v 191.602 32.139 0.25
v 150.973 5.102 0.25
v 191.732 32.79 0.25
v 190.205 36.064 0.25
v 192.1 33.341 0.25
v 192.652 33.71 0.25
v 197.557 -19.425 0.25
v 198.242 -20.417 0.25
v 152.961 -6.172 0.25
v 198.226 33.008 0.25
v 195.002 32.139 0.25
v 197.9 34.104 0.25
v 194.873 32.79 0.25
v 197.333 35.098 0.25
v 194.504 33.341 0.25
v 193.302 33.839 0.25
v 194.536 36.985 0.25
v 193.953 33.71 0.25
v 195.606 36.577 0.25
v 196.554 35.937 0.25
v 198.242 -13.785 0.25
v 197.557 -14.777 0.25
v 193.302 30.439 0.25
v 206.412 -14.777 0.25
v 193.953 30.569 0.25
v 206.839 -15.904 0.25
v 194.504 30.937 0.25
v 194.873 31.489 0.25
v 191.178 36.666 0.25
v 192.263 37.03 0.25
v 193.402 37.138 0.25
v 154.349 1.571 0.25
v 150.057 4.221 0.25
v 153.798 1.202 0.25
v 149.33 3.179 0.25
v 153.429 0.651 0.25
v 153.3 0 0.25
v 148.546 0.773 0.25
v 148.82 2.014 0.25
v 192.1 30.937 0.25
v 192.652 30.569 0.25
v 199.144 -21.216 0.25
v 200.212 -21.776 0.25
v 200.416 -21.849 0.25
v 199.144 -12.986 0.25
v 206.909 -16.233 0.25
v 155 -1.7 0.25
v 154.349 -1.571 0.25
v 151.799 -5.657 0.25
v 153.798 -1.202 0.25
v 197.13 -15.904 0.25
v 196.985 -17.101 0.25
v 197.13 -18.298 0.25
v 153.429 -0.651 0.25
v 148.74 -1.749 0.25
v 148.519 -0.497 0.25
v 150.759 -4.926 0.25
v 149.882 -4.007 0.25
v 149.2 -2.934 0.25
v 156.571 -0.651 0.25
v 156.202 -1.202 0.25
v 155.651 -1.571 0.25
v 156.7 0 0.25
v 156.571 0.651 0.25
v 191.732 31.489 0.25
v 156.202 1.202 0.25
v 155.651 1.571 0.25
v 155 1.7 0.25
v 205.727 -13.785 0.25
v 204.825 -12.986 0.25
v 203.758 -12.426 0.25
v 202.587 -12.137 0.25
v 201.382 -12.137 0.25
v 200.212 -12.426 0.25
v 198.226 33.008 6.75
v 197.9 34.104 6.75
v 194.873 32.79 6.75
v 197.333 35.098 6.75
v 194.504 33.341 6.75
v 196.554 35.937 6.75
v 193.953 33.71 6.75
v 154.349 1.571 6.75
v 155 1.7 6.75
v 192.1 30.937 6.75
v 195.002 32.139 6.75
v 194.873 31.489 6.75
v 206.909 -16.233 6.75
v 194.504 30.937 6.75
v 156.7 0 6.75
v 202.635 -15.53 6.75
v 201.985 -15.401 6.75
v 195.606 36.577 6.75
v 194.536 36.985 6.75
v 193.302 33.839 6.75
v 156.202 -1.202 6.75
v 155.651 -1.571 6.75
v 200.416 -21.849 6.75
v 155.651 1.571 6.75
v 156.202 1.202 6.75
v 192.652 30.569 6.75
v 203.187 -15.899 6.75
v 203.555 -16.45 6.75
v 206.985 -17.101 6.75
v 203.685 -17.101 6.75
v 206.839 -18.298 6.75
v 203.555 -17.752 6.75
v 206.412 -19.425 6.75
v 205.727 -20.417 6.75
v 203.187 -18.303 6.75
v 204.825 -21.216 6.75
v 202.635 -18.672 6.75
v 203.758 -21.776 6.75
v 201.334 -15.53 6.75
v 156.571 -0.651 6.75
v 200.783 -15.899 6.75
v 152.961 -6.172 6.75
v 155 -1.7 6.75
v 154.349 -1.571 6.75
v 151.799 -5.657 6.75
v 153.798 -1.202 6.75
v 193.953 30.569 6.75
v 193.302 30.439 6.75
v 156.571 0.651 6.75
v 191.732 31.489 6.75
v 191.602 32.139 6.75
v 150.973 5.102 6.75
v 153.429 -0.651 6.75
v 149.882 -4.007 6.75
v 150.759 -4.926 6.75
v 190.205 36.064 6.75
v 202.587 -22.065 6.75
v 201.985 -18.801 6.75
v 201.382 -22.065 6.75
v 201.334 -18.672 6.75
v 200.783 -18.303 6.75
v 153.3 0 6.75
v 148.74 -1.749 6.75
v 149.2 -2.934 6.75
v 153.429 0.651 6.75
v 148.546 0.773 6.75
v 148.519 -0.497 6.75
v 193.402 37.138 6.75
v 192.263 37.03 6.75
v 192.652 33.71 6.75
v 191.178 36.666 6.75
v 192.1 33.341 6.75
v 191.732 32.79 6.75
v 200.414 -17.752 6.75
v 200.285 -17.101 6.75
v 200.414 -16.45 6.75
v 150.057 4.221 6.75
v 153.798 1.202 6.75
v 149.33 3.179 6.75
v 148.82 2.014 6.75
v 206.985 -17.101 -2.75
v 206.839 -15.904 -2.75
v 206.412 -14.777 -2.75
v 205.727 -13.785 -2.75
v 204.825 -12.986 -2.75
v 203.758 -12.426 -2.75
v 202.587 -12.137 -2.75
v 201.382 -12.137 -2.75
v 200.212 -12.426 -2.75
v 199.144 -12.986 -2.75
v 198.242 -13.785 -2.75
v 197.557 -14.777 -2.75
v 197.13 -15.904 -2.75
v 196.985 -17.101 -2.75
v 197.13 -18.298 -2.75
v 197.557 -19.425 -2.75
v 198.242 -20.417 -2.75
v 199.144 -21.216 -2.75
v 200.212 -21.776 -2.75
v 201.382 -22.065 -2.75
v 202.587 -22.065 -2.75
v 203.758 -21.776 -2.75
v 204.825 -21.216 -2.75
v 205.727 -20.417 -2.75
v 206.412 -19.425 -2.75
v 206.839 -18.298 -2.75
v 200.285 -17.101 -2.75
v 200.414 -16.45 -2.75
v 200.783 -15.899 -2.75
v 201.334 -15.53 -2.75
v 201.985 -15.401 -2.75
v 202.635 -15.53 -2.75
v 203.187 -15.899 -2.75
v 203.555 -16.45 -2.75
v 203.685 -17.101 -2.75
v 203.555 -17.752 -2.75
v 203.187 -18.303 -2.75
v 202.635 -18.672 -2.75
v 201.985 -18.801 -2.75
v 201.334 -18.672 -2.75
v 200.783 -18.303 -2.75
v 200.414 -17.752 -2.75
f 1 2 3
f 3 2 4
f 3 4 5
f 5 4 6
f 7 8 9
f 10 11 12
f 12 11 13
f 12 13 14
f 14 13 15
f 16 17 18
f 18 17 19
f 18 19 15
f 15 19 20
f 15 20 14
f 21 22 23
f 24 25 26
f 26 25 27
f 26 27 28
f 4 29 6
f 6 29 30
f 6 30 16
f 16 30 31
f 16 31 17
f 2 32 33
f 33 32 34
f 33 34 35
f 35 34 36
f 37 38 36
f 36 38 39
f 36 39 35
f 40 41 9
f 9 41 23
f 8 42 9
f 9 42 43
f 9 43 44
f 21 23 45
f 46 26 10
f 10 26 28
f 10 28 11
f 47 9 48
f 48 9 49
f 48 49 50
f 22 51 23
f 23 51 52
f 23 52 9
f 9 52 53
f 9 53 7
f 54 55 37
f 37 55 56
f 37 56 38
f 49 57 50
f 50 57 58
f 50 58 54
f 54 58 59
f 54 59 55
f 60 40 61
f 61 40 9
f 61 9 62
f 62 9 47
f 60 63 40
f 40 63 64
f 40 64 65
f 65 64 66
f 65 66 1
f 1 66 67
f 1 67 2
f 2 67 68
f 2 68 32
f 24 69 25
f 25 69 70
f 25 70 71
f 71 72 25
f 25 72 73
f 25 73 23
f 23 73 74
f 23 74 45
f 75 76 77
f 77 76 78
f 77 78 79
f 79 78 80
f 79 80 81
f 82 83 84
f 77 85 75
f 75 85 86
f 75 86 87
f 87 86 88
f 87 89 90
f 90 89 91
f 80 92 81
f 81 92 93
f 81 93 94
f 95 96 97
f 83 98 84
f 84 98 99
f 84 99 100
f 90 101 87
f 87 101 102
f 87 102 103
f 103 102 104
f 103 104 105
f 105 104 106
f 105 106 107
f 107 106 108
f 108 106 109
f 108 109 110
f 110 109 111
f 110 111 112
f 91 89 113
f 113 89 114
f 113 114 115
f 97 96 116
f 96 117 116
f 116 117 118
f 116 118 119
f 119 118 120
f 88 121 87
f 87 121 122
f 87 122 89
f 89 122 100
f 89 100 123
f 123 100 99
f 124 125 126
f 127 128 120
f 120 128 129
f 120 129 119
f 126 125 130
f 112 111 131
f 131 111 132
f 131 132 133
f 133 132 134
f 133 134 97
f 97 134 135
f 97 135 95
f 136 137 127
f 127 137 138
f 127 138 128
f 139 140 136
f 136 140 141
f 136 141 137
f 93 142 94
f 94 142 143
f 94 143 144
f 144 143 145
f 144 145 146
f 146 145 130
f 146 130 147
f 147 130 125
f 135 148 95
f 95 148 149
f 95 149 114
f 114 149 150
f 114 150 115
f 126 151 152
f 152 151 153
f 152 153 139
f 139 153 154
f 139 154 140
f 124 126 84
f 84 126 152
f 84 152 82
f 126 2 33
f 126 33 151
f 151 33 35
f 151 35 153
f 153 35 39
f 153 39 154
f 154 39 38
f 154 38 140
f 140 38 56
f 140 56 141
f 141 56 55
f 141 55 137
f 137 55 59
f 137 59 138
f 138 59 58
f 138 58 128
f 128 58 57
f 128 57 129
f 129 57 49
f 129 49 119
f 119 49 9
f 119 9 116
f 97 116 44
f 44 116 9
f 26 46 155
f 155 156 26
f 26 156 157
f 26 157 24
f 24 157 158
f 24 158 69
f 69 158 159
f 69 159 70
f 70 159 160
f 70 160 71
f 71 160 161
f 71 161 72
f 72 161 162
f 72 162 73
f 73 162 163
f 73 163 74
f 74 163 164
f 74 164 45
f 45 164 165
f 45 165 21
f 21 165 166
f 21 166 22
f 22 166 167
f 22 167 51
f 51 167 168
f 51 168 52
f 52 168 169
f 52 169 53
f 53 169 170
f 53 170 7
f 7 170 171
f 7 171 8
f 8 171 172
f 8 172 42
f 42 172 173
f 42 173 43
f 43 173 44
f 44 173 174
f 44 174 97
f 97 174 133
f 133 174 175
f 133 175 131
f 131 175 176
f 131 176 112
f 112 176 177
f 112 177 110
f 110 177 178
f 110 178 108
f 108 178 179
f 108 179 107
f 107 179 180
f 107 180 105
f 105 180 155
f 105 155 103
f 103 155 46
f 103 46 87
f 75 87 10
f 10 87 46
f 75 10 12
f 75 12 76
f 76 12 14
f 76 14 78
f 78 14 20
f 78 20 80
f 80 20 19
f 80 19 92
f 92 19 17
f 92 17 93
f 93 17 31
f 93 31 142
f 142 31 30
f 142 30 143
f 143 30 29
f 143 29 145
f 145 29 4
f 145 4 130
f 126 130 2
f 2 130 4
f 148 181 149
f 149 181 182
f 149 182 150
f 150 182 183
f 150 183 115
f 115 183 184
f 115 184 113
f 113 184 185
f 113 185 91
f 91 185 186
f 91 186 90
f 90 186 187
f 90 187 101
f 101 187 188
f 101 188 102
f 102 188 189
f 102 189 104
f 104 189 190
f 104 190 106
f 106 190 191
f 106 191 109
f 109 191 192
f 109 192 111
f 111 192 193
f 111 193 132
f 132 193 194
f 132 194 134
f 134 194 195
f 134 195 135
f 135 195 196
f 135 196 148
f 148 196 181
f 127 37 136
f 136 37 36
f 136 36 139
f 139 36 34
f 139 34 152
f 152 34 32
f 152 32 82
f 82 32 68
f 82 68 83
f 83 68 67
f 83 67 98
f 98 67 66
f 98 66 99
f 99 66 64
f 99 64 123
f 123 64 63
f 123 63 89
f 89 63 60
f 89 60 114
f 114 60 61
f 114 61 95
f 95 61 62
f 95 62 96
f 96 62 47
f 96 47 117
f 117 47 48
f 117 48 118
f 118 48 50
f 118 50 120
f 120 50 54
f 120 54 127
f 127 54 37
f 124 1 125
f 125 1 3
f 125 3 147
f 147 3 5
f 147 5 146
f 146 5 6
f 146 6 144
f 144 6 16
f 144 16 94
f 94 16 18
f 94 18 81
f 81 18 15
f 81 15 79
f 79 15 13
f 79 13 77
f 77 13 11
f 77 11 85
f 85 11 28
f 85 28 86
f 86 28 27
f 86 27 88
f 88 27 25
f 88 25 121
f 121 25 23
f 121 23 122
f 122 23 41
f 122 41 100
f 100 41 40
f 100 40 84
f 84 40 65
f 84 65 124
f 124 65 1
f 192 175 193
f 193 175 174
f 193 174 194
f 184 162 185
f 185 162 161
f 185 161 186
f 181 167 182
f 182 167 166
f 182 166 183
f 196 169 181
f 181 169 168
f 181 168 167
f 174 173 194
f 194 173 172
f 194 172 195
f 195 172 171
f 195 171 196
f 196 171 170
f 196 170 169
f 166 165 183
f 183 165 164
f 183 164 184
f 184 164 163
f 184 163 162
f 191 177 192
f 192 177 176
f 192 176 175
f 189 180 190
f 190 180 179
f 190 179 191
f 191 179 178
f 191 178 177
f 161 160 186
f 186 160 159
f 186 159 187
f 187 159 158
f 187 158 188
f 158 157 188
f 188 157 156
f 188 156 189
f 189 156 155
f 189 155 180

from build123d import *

# Parameters (mm, degrees)
EXTRUDE_START   = 0.25
SKETCH_1_R      = 1.7
EXTRUDE_1_DEPTH = 6.5
SKETCH_2_R      = 5
SKETCH_2_R_2    = 1.7
EXTRUDE_2_DEPTH = 3


with BuildPart() as part:
    # 草图1 → 凸台-拉伸1 (new body)
    with BuildSketch(Plane.XY.offset(EXTRUDE_START)):
        with BuildLine():
            Line((198.226260921, 33.007621373), (206.908669804, -16.232766278))
            ThreePointArc((206.908669804, -16.232766278), (205.255667217, -20.882583864), (200.416253934, -21.848658507))
            Line((200.416253934, -21.848658507), (152.961109764, -6.171946743))
            ThreePointArc((152.961109764, -6.171946743), (148.598749605, -1.128713155), (150.97313978, 5.10239128))
            Line((150.97313978, 5.10239128), (190.204637372, 36.064296853))
            ThreePointArc((190.204637372, 36.064296853), (195.08261531, 36.811660465), (198.226260921, 33.007621373))
        make_face()
        with Locations((201.984631039, -17.101007166)):
            Circle(SKETCH_1_R, mode=Mode.SUBTRACT)
        with Locations((155, 0)):
            Circle(SKETCH_1_R, mode=Mode.SUBTRACT)
        with Locations((193.302222156, 32.139380484)):
            Circle(SKETCH_1_R, mode=Mode.SUBTRACT)
    extrude(amount=EXTRUDE_1_DEPTH)

    # 草图2 → 凸台-拉伸2 (add)
    with BuildSketch(Plane(origin=(0, 0, 0.25), x_dir=(-1, 0, 0), z_dir=(0, 0, -1))):
        with Locations((-201.984631039, -17.101007166)):
            Circle(SKETCH_2_R)
        with Locations((-201.984631039, -17.101007166)):
            Circle(SKETCH_2_R_2, mode=Mode.SUBTRACT)
    extrude(amount=EXTRUDE_2_DEPTH)


solid = part.part
